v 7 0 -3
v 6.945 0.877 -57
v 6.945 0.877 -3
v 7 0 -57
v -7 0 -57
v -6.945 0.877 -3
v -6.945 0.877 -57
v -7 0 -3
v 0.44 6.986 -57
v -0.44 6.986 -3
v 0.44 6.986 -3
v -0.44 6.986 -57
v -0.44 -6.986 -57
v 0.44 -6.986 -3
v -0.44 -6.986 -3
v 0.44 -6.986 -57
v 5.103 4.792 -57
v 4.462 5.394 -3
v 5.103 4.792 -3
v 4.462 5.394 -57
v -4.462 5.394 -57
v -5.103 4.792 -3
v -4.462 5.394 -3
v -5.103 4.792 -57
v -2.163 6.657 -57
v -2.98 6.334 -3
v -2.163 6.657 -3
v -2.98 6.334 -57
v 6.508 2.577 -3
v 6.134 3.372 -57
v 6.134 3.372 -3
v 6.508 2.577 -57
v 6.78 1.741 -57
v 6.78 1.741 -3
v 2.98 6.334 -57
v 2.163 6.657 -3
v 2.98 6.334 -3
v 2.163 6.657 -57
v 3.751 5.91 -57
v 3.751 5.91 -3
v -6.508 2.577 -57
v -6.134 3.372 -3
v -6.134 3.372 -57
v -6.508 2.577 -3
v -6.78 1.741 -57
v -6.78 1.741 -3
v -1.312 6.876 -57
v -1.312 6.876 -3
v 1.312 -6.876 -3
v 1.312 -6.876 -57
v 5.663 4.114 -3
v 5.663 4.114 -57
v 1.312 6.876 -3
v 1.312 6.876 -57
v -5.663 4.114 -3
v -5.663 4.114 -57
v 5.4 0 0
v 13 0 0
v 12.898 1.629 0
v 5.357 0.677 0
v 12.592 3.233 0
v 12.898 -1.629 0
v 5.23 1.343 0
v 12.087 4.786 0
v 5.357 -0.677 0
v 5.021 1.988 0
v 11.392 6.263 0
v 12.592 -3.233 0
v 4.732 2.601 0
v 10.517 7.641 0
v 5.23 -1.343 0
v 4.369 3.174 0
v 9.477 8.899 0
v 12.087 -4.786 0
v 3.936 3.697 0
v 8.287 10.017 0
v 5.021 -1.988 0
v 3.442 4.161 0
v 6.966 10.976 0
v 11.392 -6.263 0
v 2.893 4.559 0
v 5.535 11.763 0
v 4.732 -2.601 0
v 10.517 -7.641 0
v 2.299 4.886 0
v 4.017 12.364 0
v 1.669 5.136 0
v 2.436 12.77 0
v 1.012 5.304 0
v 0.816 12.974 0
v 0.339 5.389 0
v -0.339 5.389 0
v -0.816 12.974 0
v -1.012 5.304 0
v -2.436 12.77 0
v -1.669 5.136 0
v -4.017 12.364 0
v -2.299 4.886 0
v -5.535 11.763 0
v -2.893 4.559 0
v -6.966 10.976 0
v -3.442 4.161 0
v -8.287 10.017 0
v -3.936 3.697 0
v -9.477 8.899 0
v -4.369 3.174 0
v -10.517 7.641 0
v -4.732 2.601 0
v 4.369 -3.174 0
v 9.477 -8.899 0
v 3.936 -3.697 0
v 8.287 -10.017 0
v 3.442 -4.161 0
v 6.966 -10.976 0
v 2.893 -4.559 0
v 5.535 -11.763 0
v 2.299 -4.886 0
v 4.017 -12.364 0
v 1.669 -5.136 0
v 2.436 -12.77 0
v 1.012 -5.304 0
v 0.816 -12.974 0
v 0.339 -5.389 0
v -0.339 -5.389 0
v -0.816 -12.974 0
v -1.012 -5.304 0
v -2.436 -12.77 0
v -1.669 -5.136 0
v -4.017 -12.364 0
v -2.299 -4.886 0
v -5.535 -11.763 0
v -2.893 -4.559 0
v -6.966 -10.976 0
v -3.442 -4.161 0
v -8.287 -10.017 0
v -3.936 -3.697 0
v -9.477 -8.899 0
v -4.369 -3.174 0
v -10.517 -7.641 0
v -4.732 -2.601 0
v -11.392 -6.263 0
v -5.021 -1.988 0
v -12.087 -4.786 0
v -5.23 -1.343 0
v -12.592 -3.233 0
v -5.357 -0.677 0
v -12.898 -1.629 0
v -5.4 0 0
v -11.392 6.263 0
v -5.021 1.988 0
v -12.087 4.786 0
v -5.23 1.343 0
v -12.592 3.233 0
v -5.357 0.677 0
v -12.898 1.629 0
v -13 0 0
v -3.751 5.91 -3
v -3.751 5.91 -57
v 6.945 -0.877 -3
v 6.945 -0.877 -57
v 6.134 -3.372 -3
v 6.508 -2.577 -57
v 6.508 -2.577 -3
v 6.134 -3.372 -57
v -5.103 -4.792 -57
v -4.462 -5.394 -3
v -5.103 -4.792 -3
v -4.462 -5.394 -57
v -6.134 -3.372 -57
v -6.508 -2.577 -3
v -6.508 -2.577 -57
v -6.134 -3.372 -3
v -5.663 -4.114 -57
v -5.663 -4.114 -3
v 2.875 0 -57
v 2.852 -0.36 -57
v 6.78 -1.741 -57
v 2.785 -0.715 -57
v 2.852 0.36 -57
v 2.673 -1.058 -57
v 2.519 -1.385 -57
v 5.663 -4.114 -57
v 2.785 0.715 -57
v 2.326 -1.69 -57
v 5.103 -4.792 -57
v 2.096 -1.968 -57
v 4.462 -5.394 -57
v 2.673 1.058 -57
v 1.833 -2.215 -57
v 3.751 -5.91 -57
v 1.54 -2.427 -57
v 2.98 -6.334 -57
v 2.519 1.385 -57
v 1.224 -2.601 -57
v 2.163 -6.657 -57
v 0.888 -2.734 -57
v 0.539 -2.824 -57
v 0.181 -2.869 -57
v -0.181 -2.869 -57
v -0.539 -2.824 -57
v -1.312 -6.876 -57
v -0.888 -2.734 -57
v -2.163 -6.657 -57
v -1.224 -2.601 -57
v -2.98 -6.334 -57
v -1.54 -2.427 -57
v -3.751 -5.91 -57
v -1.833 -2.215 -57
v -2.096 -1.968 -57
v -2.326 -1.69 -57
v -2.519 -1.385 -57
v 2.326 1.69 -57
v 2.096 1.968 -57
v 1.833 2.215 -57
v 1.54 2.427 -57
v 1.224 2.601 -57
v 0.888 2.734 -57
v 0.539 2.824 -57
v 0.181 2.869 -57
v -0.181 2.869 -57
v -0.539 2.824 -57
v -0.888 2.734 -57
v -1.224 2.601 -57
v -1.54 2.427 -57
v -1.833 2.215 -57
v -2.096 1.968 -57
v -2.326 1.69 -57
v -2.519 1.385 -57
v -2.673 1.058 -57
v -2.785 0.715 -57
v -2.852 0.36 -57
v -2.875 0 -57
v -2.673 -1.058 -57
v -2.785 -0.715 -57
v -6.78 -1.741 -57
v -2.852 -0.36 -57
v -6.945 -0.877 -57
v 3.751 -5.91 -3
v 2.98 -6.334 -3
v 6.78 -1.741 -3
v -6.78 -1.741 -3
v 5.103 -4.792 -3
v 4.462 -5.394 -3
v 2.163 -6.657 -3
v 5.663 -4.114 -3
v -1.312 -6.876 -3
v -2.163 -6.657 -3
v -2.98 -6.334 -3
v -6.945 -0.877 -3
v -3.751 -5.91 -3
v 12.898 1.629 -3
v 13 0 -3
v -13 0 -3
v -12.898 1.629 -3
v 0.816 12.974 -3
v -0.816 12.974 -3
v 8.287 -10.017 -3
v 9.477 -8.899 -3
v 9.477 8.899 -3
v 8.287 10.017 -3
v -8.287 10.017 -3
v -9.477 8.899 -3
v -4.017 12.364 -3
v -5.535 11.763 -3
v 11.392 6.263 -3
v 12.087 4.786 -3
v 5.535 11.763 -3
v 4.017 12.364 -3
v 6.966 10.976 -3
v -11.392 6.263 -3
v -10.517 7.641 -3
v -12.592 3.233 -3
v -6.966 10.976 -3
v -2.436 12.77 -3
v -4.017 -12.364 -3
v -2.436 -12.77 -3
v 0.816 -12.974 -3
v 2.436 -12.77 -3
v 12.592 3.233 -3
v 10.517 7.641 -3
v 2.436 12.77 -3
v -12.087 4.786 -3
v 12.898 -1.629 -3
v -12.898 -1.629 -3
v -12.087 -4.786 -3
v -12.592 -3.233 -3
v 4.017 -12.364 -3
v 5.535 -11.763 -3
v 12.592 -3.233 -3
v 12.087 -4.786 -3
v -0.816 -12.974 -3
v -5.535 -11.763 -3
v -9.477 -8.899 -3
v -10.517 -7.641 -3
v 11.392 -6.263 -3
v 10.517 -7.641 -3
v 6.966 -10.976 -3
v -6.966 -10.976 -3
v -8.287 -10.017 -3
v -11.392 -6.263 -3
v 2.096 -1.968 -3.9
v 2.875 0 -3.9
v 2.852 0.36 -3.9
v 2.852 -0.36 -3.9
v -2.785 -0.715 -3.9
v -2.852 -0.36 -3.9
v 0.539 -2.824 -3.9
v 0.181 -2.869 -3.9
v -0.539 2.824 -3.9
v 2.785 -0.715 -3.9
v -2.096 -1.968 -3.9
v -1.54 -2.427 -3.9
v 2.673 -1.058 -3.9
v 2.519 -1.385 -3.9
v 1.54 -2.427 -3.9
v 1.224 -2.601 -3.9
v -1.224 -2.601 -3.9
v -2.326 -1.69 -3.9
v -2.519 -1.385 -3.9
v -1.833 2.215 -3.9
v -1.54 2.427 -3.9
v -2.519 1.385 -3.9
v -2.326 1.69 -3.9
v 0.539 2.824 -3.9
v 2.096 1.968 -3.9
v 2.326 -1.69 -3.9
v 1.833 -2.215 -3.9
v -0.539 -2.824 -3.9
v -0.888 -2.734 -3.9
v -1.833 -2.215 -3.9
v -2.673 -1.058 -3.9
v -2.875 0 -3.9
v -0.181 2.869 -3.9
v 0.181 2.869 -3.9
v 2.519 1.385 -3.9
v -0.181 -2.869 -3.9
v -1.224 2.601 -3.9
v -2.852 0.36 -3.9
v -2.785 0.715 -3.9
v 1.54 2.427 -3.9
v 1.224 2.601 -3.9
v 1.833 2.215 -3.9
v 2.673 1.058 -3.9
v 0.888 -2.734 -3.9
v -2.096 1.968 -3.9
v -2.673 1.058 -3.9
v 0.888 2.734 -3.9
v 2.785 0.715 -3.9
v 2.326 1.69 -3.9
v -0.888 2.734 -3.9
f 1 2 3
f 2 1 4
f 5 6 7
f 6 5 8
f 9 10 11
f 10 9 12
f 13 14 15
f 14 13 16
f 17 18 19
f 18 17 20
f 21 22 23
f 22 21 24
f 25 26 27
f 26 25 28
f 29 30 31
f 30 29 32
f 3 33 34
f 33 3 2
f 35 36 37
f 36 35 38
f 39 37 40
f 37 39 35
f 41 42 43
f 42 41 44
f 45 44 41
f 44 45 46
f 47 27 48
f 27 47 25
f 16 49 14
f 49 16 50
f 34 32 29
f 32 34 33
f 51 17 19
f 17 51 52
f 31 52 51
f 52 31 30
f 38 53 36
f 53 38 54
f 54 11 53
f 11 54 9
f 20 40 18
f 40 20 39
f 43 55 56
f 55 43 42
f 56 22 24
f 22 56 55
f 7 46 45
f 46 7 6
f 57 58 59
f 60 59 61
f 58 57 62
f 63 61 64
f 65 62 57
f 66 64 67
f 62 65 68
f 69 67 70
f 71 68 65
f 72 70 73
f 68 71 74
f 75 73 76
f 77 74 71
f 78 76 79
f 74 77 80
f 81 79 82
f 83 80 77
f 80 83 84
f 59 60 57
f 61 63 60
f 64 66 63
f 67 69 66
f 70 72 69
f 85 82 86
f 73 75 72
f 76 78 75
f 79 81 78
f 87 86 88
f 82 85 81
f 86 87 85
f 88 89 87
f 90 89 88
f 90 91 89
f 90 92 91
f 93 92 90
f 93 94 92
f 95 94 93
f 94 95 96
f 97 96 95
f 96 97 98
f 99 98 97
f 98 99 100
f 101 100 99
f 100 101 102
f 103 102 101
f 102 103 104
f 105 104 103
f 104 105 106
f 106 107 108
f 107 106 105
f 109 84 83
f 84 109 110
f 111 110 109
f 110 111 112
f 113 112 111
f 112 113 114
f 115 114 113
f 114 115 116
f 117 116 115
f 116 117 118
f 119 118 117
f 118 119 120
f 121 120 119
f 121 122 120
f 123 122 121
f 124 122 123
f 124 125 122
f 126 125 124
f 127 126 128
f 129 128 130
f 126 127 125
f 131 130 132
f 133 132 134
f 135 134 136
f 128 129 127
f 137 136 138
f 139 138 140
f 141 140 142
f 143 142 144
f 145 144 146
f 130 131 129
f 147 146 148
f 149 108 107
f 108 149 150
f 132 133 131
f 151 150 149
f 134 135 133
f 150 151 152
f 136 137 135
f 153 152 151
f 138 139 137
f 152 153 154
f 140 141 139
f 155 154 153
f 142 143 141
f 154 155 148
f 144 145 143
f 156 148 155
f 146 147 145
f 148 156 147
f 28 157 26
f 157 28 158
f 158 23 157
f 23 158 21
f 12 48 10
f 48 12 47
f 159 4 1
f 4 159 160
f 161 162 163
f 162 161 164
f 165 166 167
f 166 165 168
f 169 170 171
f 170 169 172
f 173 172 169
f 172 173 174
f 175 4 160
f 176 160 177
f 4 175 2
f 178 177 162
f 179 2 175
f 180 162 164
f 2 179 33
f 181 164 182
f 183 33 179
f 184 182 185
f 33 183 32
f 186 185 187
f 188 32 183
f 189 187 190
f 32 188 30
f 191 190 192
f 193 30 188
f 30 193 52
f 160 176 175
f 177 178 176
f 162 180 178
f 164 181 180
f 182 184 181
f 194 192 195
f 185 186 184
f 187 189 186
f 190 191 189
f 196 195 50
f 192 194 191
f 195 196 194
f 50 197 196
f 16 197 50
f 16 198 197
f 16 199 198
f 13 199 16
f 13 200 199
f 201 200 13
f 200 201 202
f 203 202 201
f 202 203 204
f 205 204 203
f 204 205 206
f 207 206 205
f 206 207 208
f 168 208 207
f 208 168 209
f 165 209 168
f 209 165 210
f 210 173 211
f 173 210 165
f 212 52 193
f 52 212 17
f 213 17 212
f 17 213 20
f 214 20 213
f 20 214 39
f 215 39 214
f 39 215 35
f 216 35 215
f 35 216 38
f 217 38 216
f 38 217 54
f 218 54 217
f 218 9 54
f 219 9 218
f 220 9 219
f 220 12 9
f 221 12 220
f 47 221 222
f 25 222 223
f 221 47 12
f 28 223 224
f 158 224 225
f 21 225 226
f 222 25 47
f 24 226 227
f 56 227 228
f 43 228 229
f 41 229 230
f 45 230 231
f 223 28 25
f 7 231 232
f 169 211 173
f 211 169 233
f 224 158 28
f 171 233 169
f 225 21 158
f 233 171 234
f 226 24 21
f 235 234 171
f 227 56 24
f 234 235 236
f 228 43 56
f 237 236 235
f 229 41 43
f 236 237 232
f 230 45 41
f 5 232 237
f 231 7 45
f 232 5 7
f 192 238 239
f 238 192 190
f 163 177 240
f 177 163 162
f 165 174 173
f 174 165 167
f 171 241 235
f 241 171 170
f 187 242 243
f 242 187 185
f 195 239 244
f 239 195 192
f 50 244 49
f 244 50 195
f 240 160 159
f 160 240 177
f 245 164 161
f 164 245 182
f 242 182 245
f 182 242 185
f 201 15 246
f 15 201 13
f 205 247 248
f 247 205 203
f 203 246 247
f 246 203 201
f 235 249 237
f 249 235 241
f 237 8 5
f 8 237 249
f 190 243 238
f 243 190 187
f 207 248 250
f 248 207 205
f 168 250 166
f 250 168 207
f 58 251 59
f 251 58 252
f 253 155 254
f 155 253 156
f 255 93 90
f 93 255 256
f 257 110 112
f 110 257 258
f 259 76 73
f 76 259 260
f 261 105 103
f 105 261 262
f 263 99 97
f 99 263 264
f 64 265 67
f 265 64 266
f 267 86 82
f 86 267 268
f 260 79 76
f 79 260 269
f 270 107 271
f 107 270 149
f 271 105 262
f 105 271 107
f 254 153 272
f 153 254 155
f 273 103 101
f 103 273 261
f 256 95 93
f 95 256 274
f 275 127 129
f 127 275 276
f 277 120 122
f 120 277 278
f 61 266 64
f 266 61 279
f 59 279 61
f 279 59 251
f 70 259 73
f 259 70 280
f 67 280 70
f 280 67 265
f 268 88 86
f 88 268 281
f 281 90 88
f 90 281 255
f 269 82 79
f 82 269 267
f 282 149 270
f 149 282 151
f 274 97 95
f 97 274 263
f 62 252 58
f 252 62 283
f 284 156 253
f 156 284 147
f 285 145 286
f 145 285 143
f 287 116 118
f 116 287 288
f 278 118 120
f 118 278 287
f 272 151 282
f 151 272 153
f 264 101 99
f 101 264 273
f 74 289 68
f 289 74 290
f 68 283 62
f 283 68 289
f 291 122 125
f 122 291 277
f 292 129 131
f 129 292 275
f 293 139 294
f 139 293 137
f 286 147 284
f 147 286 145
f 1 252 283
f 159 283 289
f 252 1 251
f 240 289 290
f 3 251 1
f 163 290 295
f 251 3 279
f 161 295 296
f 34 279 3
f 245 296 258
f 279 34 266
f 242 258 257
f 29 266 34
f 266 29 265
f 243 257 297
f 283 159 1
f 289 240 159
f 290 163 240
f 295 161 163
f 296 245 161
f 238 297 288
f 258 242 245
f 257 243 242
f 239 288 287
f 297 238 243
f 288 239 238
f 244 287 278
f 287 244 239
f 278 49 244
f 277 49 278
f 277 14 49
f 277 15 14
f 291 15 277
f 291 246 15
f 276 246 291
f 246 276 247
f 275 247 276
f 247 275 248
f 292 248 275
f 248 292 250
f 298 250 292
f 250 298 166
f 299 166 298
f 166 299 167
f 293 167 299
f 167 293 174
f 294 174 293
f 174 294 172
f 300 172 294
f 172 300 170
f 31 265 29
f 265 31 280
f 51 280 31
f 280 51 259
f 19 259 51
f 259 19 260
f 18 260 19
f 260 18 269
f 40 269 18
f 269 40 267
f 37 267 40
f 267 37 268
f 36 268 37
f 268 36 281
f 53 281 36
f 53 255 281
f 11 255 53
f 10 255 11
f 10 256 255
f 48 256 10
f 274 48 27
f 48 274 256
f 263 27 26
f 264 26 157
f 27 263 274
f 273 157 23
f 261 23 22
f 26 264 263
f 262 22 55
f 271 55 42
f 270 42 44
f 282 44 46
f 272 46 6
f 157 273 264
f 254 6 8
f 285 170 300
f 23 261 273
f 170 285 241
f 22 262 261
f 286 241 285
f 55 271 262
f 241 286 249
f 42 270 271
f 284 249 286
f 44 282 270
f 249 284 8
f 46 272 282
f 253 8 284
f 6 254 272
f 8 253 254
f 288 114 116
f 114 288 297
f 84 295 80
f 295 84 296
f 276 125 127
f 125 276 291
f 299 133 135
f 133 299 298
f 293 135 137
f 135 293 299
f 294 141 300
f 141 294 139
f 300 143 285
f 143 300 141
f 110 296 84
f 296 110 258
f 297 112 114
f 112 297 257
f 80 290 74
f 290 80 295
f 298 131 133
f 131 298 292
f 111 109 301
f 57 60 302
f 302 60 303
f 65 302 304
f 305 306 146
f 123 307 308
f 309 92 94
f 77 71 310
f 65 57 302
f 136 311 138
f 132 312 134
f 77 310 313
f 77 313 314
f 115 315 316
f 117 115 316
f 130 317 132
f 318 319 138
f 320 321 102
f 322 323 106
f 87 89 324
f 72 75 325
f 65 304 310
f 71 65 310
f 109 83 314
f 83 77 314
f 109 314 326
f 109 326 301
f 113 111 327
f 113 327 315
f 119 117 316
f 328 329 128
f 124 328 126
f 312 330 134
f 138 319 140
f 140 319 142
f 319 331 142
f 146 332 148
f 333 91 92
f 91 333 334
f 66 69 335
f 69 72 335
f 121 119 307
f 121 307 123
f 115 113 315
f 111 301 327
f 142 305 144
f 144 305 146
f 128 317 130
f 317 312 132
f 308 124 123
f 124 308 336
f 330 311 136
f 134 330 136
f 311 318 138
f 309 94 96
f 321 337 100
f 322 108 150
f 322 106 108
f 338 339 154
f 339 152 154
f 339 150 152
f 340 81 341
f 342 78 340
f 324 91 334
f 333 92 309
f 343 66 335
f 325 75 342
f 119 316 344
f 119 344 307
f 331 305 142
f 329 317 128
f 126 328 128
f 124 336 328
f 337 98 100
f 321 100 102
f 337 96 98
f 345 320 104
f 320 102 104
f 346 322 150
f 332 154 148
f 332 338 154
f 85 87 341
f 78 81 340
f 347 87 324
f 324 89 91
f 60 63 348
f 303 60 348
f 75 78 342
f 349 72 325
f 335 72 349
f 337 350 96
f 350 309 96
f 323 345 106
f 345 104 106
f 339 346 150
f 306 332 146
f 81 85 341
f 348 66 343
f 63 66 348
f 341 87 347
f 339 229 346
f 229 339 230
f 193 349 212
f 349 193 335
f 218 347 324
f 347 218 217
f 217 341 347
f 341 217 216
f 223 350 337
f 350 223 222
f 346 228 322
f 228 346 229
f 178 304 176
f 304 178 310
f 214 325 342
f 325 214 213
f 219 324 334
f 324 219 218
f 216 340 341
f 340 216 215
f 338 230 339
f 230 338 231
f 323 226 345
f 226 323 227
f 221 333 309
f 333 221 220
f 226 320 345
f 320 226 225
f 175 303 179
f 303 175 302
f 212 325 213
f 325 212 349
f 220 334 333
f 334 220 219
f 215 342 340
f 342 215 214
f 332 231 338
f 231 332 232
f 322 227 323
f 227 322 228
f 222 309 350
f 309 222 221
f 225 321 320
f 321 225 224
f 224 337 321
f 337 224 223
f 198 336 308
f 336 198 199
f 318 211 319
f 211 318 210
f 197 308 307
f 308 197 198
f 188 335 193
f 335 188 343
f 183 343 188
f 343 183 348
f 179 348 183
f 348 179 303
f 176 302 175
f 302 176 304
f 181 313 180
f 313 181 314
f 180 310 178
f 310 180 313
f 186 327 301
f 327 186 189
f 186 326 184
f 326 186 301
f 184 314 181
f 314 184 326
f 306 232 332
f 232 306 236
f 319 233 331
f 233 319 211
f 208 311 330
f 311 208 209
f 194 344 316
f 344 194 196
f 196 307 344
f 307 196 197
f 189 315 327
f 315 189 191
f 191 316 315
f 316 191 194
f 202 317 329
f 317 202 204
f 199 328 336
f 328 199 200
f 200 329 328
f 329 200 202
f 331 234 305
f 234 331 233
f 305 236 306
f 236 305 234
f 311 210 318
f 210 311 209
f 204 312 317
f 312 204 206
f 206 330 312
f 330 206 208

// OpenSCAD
$fn = 50;


difference() {
	union() {
		translate(v = [0, 0, -57.0000000000]) {
			cylinder(h = 57, r = 7.0000000000);
		}
		translate(v = [0, 0, -3.0000000000]) {
			cylinder(h = 3, r = 13.0000000000);
		}
	}
	union() {
		translate(v = [0, 0, 0]) {
			rotate(a = [0, 0, 0]) {
				difference() {
					union() {
						#translate(v = [0, 0, -57.0000000000]) {
							cylinder(h = 57, r = 2.6000000000);
						}
						#translate(v = [0, 0, -3.9000000000]) {
							cylinder(h = 3.9000000000, r = 7.0000000000, r1 = 2.8750000000, r2 = 5.4000000000);
						}
						#translate(v = [0, 0, -57.0000000000]) {
							cylinder(h = 57, r = 2.8750000000);
						}
						#translate(v = [0, 0, -57.0000000000]) {
							cylinder(h = 57, r = 2.6000000000);
						}
					}
					union();
				}
			}
		}
	}
}
